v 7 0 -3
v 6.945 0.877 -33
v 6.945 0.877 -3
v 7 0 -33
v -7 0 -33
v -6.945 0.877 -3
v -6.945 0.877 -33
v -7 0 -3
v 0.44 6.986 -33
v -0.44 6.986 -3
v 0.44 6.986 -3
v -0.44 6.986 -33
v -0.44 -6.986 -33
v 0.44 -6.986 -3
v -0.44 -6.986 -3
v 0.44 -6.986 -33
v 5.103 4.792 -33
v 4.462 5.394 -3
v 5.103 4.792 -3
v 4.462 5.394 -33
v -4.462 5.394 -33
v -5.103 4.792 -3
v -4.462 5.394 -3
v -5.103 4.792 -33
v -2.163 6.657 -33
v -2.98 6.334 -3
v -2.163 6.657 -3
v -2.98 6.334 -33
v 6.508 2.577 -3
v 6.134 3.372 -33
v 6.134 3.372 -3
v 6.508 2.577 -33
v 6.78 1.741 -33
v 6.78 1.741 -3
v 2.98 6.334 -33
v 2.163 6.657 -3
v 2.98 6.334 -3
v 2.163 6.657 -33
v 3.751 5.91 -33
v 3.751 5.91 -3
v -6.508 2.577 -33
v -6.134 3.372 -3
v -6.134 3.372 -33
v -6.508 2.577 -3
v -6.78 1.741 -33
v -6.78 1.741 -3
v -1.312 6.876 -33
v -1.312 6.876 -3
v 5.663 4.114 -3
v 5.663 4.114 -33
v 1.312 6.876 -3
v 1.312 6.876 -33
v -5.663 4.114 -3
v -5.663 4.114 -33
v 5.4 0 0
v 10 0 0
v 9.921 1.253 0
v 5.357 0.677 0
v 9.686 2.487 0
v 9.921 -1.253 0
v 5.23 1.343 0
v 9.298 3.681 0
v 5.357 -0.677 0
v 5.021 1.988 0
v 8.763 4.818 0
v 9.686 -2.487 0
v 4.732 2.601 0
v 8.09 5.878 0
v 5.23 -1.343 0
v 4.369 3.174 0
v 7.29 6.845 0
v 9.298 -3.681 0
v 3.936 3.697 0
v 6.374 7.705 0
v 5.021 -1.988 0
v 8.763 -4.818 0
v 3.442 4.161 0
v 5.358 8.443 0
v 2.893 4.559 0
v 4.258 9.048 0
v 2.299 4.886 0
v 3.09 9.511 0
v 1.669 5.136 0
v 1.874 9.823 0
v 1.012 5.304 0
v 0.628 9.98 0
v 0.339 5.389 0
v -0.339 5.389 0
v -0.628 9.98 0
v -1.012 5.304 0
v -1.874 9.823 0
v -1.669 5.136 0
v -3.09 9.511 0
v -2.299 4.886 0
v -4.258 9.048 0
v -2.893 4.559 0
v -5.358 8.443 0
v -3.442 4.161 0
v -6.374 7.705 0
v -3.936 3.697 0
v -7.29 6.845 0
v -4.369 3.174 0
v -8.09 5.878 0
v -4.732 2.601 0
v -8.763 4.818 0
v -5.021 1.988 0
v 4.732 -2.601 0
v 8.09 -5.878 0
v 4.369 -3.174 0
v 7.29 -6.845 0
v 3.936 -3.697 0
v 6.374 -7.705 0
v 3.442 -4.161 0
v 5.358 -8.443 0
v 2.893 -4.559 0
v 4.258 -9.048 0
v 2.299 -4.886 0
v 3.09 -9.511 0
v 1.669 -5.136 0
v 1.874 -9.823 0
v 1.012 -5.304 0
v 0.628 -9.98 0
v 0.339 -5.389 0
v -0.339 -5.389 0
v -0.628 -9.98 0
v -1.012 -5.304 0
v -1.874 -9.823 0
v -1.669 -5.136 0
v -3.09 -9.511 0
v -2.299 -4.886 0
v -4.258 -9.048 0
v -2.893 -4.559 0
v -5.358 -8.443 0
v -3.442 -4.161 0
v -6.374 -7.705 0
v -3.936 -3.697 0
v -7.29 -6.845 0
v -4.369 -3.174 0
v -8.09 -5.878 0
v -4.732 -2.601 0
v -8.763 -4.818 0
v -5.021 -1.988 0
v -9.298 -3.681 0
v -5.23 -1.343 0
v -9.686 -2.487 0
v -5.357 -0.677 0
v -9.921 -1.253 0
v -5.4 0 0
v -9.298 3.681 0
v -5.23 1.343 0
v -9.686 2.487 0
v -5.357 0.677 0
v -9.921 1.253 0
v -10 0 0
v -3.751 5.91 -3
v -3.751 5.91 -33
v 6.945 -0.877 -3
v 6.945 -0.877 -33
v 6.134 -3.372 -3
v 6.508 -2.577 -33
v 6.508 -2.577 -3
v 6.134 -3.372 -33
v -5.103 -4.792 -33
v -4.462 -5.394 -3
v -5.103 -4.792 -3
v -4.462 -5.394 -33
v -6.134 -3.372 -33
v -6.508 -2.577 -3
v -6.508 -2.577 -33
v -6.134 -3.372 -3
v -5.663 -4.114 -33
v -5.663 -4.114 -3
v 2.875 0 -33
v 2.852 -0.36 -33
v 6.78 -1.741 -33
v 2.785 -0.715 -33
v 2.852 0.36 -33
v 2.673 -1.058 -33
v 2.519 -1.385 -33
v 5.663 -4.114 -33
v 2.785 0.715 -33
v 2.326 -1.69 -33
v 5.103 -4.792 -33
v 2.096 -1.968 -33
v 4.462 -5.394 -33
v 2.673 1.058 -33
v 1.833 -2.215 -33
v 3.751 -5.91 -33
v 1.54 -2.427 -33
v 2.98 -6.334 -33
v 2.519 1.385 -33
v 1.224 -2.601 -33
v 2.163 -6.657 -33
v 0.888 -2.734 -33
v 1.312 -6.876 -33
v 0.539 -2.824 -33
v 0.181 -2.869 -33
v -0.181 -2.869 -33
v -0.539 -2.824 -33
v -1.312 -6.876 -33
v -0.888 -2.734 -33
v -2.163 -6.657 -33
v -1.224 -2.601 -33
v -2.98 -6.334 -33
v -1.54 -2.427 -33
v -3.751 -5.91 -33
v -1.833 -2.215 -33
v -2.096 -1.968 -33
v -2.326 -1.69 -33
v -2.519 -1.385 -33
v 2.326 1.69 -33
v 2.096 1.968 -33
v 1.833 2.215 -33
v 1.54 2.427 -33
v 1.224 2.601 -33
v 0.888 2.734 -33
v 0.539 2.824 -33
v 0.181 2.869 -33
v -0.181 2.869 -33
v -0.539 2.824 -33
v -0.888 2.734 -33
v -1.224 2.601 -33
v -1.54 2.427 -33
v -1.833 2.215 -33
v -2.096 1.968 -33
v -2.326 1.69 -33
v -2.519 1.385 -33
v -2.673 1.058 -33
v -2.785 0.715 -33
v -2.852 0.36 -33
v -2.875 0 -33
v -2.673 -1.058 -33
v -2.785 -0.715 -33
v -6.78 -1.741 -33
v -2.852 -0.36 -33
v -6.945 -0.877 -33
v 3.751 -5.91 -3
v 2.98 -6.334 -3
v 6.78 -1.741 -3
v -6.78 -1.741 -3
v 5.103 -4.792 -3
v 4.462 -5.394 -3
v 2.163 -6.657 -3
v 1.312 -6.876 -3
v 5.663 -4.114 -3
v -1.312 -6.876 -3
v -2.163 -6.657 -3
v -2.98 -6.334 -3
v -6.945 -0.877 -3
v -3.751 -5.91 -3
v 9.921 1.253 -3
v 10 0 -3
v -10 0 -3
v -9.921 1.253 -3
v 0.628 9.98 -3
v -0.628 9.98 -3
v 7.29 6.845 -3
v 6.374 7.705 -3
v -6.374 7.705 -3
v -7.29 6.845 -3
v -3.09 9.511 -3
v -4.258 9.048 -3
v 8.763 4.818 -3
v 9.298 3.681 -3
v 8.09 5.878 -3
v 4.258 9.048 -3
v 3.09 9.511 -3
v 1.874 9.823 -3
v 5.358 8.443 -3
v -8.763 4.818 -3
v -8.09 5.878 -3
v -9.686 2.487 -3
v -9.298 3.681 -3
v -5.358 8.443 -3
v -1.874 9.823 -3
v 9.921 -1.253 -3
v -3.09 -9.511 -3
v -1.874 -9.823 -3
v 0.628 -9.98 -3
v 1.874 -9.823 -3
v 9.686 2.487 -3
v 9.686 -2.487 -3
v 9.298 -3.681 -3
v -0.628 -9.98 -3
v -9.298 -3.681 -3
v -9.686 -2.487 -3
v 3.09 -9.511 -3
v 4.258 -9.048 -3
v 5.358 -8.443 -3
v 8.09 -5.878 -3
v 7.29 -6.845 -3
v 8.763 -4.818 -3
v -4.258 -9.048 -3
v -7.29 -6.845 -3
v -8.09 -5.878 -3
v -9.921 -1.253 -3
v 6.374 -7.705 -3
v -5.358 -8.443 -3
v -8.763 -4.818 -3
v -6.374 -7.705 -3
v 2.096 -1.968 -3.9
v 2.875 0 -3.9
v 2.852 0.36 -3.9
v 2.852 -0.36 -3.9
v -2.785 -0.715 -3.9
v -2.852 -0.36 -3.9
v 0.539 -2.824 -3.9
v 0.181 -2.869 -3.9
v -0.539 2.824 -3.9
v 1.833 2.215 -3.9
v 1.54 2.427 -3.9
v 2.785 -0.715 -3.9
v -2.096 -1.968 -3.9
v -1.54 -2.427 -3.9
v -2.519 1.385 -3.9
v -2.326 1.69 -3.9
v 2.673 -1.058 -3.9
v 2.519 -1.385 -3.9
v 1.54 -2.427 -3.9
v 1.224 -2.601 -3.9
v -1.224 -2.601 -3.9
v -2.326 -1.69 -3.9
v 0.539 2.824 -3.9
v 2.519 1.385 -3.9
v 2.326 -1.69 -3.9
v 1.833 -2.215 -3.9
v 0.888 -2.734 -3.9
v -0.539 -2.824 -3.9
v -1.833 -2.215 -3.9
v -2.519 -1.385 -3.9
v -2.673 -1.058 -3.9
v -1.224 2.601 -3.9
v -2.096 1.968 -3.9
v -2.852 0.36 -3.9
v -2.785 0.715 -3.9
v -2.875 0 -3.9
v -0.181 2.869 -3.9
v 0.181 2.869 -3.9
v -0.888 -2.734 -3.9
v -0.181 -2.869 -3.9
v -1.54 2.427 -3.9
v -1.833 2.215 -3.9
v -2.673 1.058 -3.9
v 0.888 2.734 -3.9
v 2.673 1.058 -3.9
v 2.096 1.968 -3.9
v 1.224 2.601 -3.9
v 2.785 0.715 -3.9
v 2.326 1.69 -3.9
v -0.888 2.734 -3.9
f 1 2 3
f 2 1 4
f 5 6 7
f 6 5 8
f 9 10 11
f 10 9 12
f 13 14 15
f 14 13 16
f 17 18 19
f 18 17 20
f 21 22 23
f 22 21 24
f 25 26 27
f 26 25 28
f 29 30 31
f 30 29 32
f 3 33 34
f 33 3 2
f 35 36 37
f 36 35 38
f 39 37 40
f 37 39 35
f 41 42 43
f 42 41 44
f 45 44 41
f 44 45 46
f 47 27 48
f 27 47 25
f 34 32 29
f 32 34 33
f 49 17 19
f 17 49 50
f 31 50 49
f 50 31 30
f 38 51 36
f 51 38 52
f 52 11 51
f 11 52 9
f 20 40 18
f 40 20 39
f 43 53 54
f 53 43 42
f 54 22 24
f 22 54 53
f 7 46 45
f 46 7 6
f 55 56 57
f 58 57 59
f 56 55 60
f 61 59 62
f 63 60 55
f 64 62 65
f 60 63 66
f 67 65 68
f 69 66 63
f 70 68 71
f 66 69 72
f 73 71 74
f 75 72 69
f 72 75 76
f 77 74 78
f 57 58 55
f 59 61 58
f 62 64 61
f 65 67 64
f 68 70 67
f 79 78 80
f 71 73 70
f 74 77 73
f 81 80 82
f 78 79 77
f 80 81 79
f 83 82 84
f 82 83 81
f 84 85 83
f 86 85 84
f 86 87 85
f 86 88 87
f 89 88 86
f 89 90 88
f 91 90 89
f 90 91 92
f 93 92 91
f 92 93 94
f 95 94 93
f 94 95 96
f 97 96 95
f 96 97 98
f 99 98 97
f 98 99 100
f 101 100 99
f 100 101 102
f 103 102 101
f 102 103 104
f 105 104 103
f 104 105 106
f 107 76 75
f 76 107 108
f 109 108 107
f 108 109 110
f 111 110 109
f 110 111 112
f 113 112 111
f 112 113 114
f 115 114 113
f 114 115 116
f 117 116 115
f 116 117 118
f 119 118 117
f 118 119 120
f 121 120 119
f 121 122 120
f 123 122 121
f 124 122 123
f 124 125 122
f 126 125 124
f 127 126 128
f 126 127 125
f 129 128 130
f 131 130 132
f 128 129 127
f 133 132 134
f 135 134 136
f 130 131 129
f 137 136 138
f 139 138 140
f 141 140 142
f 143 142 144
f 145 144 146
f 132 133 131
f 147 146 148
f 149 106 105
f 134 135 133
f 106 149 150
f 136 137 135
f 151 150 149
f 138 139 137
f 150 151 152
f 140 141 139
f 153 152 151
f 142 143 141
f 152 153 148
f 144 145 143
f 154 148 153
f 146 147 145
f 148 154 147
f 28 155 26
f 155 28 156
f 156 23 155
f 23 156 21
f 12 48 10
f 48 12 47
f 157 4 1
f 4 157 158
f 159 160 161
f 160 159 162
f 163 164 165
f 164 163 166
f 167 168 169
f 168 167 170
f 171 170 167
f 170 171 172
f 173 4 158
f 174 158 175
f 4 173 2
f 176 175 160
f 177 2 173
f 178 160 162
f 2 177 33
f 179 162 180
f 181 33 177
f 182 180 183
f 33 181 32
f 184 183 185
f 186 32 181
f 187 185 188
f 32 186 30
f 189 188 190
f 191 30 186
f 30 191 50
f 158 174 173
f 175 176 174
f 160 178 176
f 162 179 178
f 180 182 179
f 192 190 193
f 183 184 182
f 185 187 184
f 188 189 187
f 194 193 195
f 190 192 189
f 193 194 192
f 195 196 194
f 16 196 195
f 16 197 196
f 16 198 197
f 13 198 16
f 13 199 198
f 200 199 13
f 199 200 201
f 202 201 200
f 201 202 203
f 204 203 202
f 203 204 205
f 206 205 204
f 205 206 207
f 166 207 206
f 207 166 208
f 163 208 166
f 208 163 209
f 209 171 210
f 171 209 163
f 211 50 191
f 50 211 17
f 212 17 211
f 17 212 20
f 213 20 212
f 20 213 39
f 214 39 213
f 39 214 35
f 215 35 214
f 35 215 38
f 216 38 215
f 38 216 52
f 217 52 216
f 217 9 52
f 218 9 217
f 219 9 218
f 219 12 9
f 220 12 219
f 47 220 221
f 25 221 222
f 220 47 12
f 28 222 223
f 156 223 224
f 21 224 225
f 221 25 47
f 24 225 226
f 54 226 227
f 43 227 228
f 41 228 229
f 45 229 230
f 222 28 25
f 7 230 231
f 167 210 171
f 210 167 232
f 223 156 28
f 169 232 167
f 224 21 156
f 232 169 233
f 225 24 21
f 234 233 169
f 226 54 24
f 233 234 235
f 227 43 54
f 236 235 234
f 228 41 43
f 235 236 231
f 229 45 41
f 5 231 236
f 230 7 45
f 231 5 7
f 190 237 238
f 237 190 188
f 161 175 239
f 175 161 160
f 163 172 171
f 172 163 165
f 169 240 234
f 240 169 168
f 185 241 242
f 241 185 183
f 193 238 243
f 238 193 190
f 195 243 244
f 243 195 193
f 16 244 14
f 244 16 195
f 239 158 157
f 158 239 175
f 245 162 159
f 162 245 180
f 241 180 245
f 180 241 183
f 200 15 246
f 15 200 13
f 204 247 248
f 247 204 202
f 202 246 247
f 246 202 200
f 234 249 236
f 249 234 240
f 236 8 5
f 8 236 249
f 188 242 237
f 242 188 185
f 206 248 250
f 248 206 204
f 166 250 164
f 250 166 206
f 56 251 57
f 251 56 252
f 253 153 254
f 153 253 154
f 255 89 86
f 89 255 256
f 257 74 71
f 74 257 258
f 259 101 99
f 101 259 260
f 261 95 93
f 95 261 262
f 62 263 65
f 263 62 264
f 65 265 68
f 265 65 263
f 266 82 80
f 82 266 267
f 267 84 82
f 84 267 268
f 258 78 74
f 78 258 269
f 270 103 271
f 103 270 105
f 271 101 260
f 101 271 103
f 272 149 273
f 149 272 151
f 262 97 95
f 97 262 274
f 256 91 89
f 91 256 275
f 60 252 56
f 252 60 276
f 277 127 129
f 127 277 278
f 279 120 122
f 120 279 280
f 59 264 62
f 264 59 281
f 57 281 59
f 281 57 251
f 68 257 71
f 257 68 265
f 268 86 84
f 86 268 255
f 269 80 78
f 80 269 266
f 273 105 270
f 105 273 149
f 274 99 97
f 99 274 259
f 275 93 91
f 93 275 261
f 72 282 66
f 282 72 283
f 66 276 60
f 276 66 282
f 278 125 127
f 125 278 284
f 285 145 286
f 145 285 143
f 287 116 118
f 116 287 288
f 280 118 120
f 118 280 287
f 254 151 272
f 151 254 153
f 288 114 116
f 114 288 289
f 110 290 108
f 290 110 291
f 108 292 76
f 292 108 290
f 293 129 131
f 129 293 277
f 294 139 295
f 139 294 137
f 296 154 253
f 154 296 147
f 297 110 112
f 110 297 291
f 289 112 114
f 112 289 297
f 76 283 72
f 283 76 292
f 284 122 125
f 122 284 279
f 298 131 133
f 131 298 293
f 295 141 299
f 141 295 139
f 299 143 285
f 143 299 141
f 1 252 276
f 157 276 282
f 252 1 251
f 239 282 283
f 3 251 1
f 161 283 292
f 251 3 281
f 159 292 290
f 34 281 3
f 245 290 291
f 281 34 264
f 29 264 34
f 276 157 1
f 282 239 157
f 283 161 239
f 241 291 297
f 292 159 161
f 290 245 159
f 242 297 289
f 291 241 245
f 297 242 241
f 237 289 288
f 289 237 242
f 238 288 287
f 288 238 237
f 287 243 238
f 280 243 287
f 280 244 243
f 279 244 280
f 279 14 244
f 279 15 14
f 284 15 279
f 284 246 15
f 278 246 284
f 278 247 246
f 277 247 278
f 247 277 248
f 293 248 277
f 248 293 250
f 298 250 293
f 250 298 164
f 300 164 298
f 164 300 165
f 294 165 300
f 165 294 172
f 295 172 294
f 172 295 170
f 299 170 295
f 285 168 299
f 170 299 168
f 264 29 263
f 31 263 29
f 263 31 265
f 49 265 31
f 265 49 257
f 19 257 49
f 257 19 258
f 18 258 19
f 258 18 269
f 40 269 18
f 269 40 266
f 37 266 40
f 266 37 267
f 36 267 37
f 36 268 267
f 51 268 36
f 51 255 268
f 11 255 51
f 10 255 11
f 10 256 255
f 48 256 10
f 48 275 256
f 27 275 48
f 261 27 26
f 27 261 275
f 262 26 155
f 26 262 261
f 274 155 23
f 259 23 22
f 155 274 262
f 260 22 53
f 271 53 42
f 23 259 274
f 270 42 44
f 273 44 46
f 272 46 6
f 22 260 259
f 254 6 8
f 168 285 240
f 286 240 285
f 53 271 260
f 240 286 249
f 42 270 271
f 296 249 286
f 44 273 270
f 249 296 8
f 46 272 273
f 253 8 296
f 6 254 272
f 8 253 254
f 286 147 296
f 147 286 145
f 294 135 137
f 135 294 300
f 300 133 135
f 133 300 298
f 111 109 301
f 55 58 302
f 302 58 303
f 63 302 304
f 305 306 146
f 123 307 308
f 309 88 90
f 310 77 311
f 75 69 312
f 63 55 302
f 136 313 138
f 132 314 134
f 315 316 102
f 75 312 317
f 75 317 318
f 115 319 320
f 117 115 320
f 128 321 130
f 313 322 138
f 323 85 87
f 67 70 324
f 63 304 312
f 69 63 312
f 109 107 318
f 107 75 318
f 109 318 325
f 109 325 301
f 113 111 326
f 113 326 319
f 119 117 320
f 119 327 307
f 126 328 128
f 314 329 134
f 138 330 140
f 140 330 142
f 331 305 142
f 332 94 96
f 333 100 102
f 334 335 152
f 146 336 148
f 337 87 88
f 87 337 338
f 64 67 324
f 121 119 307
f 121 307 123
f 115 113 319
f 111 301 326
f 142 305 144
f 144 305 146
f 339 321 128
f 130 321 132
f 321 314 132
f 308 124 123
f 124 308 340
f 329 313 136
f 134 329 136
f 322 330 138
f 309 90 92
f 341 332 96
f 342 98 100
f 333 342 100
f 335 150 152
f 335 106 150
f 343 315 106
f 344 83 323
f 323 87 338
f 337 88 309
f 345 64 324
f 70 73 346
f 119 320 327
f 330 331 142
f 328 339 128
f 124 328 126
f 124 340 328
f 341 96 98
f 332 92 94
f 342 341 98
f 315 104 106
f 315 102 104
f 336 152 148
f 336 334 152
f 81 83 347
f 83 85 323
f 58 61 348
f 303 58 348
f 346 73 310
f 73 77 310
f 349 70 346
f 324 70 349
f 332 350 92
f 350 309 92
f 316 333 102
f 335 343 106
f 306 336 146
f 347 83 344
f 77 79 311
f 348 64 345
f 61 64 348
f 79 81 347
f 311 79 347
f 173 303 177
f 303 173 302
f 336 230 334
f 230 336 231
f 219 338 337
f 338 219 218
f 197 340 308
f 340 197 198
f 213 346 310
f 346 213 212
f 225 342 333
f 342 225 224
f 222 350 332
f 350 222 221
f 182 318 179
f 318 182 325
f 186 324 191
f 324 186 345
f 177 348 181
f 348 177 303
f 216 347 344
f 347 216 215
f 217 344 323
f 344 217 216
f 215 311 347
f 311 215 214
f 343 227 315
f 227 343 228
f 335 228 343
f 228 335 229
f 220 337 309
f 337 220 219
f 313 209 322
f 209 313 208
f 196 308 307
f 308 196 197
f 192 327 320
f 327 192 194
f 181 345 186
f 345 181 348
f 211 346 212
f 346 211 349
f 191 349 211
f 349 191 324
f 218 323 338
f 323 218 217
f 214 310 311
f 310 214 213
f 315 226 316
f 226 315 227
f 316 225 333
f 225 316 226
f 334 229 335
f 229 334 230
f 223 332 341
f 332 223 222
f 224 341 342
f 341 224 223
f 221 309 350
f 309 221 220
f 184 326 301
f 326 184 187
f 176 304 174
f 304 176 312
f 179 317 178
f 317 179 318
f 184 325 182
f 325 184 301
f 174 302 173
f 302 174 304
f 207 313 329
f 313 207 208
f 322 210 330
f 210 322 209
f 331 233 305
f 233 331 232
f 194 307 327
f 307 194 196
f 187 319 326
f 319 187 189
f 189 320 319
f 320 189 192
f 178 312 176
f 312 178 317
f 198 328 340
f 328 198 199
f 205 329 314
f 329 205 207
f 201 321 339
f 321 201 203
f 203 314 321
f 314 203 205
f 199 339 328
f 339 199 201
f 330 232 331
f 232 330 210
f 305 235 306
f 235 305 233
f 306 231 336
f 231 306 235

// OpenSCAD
$fn = 50;


difference() {
	union() {
		translate(v = [0, 0, -33.0000000000]) {
			cylinder(h = 33, r = 7.0000000000);
		}
		translate(v = [0, 0, -3.0000000000]) {
			cylinder(h = 3, r = 10.0000000000);
		}
	}
	union() {
		translate(v = [0, 0, 0]) {
			rotate(a = [0, 0, 0]) {
				difference() {
					union() {
						#translate(v = [0, 0, -33.0000000000]) {
							cylinder(h = 33, r = 2.6000000000);
						}
						#translate(v = [0, 0, -3.9000000000]) {
							cylinder(h = 3.9000000000, r = 7.0000000000, r1 = 2.8750000000, r2 = 5.4000000000);
						}
						#translate(v = [0, 0, -33.0000000000]) {
							cylinder(h = 33, r = 2.8750000000);
						}
						#translate(v = [0, 0, -33.0000000000]) {
							cylinder(h = 33, r = 2.6000000000);
						}
					}
					union();
				}
			}
		}
	}
}
